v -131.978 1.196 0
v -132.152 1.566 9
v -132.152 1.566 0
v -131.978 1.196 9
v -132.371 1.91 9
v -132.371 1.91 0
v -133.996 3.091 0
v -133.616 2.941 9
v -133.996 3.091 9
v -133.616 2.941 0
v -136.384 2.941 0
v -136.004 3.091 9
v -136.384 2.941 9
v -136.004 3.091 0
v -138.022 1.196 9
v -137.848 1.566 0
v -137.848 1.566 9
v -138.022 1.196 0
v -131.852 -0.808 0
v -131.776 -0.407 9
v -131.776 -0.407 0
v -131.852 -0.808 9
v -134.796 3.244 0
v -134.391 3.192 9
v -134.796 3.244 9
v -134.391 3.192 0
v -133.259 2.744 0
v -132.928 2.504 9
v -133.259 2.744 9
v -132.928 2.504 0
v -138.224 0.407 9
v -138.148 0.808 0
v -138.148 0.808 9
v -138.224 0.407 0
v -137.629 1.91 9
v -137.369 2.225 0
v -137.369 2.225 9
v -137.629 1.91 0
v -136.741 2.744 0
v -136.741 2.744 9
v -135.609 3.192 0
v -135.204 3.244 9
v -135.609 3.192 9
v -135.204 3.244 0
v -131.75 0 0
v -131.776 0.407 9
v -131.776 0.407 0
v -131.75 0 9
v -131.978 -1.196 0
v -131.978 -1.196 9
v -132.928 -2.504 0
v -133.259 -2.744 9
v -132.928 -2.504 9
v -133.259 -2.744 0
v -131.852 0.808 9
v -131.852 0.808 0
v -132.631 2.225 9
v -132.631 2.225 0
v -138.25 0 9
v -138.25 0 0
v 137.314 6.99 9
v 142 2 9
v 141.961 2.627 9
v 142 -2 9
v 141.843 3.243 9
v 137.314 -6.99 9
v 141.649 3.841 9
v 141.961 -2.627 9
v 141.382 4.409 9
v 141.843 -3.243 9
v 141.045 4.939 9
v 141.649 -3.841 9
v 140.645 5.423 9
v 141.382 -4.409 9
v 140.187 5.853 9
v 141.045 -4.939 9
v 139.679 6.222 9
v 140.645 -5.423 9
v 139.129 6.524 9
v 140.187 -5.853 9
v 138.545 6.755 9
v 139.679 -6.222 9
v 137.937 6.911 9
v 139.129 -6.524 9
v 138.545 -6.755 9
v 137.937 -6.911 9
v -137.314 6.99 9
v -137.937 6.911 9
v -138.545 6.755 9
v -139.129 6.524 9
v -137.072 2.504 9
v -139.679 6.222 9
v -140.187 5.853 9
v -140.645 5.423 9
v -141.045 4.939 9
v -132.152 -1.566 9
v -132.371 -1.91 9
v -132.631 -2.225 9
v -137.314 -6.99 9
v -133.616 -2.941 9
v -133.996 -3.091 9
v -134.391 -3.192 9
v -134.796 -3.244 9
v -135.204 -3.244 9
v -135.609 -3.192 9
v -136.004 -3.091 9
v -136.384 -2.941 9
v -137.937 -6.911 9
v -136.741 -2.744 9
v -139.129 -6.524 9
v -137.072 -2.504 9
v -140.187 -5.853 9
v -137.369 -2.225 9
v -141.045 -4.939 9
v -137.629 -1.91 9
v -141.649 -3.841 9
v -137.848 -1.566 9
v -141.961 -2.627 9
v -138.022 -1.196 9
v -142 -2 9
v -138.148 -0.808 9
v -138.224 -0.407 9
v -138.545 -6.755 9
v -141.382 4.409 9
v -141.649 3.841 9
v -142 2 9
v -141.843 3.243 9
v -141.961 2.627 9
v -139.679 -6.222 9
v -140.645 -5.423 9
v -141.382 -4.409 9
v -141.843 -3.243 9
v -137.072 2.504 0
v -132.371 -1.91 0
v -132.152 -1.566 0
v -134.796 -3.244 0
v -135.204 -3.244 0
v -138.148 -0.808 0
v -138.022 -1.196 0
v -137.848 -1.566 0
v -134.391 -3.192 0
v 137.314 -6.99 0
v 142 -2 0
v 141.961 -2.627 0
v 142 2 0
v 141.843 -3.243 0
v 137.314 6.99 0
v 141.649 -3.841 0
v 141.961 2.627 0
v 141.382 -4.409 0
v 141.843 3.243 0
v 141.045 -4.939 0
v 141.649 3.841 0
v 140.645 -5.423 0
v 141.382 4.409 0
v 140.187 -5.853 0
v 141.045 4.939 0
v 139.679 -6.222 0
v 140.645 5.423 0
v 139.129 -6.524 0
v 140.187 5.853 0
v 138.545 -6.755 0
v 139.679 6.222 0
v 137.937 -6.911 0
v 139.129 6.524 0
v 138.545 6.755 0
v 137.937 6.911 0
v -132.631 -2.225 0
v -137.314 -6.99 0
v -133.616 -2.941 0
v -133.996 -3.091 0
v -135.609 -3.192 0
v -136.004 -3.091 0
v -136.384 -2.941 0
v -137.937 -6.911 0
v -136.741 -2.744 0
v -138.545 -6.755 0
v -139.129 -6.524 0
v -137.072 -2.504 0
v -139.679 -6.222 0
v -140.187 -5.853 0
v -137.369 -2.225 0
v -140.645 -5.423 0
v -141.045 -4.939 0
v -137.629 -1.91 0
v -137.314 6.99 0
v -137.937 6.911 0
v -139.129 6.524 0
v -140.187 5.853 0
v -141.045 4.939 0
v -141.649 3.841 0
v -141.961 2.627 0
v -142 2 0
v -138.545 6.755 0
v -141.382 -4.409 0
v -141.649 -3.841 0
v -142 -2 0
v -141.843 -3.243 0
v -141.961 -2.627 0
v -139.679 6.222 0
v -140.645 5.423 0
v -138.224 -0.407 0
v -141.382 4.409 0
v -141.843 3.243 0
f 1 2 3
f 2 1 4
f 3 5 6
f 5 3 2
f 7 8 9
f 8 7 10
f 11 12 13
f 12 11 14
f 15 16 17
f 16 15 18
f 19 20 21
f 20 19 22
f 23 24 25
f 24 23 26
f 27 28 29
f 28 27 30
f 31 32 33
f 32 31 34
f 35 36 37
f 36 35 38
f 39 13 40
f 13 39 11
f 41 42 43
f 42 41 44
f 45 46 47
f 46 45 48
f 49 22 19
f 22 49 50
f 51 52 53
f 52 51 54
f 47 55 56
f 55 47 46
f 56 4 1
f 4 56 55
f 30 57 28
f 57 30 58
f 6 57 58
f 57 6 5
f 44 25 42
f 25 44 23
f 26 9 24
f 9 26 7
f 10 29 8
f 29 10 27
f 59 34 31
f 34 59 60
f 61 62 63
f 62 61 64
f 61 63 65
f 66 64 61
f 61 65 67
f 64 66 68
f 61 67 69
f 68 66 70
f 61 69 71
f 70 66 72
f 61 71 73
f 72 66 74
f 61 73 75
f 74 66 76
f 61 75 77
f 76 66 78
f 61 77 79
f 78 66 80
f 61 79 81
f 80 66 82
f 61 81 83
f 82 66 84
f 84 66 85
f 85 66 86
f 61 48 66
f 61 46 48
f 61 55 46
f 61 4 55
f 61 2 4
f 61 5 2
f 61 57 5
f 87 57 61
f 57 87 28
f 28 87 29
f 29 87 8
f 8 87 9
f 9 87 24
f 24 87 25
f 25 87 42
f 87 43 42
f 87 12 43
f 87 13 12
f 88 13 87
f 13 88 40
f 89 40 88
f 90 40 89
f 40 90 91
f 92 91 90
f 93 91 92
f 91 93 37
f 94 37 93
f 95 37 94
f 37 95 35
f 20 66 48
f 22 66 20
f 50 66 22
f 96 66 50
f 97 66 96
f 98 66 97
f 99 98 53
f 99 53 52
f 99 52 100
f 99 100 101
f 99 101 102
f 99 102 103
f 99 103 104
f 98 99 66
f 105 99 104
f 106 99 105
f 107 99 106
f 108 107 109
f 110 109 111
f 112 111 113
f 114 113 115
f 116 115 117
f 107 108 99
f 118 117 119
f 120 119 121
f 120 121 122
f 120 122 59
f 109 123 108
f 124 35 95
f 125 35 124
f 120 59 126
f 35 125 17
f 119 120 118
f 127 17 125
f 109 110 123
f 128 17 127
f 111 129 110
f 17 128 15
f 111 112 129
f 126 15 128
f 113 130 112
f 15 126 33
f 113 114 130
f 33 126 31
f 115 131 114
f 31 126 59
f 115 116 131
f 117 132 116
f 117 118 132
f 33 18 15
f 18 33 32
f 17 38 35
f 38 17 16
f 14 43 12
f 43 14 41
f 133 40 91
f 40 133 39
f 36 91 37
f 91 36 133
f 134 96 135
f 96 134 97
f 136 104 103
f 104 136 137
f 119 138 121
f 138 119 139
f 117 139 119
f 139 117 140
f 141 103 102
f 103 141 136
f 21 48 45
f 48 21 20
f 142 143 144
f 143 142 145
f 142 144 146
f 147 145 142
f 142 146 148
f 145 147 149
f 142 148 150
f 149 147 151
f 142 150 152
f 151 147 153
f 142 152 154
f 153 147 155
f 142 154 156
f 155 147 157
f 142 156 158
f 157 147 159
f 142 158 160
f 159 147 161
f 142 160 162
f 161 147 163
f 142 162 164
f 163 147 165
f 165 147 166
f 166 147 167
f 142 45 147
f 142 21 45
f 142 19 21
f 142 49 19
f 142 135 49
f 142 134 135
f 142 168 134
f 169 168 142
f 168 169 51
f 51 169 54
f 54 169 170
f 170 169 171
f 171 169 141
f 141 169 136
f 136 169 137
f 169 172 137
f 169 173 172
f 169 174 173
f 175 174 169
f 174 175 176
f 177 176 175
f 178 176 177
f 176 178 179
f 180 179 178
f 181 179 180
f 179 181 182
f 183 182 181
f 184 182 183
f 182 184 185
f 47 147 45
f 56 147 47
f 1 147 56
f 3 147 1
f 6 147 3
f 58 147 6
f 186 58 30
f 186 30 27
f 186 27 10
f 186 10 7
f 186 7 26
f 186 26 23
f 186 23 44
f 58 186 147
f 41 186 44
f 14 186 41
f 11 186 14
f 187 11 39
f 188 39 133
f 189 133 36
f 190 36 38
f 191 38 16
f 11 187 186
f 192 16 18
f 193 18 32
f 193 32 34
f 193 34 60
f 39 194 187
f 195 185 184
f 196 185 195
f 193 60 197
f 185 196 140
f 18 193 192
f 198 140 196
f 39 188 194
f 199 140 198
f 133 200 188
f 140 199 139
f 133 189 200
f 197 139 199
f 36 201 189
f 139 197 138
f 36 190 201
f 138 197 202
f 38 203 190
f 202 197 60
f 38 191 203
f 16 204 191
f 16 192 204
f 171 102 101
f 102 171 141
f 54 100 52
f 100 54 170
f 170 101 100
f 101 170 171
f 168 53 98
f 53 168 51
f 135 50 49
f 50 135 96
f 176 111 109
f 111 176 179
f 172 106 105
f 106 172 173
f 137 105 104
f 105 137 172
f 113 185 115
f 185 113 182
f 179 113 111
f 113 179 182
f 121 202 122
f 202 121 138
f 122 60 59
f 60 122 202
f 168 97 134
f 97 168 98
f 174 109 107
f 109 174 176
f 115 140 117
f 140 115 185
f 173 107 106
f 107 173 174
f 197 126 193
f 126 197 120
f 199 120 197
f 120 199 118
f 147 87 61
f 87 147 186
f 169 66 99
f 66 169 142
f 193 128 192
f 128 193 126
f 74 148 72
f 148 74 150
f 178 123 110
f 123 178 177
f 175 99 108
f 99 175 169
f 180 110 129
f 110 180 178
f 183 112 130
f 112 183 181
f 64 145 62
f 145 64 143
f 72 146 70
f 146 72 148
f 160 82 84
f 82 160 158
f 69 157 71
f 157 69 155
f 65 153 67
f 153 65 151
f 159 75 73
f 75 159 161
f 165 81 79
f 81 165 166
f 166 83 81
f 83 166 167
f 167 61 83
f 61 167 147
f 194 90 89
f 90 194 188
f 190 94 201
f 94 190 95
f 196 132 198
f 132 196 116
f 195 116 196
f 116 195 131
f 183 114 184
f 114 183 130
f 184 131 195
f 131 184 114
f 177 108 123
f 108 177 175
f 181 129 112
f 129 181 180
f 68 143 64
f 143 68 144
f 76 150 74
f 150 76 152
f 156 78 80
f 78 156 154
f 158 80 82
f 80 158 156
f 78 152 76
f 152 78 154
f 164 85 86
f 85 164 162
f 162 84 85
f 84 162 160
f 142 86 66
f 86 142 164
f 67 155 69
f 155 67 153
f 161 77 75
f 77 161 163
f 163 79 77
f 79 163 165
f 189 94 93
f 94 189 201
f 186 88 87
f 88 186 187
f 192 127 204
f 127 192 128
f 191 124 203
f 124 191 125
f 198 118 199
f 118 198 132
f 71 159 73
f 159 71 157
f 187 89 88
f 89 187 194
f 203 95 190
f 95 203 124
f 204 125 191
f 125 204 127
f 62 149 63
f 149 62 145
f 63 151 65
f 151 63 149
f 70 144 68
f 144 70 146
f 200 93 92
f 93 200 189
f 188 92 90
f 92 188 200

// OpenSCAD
$fn = 50;


difference() {
	union() {
		hull() {
			translate(v = [-137.0000000000, 2.0000000000, 0]) {
				cylinder(h = 9, r = 5);
			}
			translate(v = [137.0000000000, 2.0000000000, 0]) {
				cylinder(h = 9, r = 5);
			}
			translate(v = [-137.0000000000, -2.0000000000, 0]) {
				cylinder(h = 9, r = 5);
			}
			translate(v = [137.0000000000, -2.0000000000, 0]) {
				cylinder(h = 9, r = 5);
			}
		}
	}
	union() {
		translate(v = [-135.0000000000, 0.0000000000, 0]) {
			cylinder(h = 9, r = 3.2500000000);
		}
		translate(v = [-135.0000000000, 0.0000000000, 0]) {
			cylinder(h = 9, r = 1.8000000000);
		}
		translate(v = [-135.0000000000, 0.0000000000, 0]) {
			cylinder(h = 9, r = 1.8000000000);
		}
		translate(v = [-135.0000000000, 0.0000000000, 0]) {
			cylinder(h = 9, r = 1.8000000000);
		}
	}
}
